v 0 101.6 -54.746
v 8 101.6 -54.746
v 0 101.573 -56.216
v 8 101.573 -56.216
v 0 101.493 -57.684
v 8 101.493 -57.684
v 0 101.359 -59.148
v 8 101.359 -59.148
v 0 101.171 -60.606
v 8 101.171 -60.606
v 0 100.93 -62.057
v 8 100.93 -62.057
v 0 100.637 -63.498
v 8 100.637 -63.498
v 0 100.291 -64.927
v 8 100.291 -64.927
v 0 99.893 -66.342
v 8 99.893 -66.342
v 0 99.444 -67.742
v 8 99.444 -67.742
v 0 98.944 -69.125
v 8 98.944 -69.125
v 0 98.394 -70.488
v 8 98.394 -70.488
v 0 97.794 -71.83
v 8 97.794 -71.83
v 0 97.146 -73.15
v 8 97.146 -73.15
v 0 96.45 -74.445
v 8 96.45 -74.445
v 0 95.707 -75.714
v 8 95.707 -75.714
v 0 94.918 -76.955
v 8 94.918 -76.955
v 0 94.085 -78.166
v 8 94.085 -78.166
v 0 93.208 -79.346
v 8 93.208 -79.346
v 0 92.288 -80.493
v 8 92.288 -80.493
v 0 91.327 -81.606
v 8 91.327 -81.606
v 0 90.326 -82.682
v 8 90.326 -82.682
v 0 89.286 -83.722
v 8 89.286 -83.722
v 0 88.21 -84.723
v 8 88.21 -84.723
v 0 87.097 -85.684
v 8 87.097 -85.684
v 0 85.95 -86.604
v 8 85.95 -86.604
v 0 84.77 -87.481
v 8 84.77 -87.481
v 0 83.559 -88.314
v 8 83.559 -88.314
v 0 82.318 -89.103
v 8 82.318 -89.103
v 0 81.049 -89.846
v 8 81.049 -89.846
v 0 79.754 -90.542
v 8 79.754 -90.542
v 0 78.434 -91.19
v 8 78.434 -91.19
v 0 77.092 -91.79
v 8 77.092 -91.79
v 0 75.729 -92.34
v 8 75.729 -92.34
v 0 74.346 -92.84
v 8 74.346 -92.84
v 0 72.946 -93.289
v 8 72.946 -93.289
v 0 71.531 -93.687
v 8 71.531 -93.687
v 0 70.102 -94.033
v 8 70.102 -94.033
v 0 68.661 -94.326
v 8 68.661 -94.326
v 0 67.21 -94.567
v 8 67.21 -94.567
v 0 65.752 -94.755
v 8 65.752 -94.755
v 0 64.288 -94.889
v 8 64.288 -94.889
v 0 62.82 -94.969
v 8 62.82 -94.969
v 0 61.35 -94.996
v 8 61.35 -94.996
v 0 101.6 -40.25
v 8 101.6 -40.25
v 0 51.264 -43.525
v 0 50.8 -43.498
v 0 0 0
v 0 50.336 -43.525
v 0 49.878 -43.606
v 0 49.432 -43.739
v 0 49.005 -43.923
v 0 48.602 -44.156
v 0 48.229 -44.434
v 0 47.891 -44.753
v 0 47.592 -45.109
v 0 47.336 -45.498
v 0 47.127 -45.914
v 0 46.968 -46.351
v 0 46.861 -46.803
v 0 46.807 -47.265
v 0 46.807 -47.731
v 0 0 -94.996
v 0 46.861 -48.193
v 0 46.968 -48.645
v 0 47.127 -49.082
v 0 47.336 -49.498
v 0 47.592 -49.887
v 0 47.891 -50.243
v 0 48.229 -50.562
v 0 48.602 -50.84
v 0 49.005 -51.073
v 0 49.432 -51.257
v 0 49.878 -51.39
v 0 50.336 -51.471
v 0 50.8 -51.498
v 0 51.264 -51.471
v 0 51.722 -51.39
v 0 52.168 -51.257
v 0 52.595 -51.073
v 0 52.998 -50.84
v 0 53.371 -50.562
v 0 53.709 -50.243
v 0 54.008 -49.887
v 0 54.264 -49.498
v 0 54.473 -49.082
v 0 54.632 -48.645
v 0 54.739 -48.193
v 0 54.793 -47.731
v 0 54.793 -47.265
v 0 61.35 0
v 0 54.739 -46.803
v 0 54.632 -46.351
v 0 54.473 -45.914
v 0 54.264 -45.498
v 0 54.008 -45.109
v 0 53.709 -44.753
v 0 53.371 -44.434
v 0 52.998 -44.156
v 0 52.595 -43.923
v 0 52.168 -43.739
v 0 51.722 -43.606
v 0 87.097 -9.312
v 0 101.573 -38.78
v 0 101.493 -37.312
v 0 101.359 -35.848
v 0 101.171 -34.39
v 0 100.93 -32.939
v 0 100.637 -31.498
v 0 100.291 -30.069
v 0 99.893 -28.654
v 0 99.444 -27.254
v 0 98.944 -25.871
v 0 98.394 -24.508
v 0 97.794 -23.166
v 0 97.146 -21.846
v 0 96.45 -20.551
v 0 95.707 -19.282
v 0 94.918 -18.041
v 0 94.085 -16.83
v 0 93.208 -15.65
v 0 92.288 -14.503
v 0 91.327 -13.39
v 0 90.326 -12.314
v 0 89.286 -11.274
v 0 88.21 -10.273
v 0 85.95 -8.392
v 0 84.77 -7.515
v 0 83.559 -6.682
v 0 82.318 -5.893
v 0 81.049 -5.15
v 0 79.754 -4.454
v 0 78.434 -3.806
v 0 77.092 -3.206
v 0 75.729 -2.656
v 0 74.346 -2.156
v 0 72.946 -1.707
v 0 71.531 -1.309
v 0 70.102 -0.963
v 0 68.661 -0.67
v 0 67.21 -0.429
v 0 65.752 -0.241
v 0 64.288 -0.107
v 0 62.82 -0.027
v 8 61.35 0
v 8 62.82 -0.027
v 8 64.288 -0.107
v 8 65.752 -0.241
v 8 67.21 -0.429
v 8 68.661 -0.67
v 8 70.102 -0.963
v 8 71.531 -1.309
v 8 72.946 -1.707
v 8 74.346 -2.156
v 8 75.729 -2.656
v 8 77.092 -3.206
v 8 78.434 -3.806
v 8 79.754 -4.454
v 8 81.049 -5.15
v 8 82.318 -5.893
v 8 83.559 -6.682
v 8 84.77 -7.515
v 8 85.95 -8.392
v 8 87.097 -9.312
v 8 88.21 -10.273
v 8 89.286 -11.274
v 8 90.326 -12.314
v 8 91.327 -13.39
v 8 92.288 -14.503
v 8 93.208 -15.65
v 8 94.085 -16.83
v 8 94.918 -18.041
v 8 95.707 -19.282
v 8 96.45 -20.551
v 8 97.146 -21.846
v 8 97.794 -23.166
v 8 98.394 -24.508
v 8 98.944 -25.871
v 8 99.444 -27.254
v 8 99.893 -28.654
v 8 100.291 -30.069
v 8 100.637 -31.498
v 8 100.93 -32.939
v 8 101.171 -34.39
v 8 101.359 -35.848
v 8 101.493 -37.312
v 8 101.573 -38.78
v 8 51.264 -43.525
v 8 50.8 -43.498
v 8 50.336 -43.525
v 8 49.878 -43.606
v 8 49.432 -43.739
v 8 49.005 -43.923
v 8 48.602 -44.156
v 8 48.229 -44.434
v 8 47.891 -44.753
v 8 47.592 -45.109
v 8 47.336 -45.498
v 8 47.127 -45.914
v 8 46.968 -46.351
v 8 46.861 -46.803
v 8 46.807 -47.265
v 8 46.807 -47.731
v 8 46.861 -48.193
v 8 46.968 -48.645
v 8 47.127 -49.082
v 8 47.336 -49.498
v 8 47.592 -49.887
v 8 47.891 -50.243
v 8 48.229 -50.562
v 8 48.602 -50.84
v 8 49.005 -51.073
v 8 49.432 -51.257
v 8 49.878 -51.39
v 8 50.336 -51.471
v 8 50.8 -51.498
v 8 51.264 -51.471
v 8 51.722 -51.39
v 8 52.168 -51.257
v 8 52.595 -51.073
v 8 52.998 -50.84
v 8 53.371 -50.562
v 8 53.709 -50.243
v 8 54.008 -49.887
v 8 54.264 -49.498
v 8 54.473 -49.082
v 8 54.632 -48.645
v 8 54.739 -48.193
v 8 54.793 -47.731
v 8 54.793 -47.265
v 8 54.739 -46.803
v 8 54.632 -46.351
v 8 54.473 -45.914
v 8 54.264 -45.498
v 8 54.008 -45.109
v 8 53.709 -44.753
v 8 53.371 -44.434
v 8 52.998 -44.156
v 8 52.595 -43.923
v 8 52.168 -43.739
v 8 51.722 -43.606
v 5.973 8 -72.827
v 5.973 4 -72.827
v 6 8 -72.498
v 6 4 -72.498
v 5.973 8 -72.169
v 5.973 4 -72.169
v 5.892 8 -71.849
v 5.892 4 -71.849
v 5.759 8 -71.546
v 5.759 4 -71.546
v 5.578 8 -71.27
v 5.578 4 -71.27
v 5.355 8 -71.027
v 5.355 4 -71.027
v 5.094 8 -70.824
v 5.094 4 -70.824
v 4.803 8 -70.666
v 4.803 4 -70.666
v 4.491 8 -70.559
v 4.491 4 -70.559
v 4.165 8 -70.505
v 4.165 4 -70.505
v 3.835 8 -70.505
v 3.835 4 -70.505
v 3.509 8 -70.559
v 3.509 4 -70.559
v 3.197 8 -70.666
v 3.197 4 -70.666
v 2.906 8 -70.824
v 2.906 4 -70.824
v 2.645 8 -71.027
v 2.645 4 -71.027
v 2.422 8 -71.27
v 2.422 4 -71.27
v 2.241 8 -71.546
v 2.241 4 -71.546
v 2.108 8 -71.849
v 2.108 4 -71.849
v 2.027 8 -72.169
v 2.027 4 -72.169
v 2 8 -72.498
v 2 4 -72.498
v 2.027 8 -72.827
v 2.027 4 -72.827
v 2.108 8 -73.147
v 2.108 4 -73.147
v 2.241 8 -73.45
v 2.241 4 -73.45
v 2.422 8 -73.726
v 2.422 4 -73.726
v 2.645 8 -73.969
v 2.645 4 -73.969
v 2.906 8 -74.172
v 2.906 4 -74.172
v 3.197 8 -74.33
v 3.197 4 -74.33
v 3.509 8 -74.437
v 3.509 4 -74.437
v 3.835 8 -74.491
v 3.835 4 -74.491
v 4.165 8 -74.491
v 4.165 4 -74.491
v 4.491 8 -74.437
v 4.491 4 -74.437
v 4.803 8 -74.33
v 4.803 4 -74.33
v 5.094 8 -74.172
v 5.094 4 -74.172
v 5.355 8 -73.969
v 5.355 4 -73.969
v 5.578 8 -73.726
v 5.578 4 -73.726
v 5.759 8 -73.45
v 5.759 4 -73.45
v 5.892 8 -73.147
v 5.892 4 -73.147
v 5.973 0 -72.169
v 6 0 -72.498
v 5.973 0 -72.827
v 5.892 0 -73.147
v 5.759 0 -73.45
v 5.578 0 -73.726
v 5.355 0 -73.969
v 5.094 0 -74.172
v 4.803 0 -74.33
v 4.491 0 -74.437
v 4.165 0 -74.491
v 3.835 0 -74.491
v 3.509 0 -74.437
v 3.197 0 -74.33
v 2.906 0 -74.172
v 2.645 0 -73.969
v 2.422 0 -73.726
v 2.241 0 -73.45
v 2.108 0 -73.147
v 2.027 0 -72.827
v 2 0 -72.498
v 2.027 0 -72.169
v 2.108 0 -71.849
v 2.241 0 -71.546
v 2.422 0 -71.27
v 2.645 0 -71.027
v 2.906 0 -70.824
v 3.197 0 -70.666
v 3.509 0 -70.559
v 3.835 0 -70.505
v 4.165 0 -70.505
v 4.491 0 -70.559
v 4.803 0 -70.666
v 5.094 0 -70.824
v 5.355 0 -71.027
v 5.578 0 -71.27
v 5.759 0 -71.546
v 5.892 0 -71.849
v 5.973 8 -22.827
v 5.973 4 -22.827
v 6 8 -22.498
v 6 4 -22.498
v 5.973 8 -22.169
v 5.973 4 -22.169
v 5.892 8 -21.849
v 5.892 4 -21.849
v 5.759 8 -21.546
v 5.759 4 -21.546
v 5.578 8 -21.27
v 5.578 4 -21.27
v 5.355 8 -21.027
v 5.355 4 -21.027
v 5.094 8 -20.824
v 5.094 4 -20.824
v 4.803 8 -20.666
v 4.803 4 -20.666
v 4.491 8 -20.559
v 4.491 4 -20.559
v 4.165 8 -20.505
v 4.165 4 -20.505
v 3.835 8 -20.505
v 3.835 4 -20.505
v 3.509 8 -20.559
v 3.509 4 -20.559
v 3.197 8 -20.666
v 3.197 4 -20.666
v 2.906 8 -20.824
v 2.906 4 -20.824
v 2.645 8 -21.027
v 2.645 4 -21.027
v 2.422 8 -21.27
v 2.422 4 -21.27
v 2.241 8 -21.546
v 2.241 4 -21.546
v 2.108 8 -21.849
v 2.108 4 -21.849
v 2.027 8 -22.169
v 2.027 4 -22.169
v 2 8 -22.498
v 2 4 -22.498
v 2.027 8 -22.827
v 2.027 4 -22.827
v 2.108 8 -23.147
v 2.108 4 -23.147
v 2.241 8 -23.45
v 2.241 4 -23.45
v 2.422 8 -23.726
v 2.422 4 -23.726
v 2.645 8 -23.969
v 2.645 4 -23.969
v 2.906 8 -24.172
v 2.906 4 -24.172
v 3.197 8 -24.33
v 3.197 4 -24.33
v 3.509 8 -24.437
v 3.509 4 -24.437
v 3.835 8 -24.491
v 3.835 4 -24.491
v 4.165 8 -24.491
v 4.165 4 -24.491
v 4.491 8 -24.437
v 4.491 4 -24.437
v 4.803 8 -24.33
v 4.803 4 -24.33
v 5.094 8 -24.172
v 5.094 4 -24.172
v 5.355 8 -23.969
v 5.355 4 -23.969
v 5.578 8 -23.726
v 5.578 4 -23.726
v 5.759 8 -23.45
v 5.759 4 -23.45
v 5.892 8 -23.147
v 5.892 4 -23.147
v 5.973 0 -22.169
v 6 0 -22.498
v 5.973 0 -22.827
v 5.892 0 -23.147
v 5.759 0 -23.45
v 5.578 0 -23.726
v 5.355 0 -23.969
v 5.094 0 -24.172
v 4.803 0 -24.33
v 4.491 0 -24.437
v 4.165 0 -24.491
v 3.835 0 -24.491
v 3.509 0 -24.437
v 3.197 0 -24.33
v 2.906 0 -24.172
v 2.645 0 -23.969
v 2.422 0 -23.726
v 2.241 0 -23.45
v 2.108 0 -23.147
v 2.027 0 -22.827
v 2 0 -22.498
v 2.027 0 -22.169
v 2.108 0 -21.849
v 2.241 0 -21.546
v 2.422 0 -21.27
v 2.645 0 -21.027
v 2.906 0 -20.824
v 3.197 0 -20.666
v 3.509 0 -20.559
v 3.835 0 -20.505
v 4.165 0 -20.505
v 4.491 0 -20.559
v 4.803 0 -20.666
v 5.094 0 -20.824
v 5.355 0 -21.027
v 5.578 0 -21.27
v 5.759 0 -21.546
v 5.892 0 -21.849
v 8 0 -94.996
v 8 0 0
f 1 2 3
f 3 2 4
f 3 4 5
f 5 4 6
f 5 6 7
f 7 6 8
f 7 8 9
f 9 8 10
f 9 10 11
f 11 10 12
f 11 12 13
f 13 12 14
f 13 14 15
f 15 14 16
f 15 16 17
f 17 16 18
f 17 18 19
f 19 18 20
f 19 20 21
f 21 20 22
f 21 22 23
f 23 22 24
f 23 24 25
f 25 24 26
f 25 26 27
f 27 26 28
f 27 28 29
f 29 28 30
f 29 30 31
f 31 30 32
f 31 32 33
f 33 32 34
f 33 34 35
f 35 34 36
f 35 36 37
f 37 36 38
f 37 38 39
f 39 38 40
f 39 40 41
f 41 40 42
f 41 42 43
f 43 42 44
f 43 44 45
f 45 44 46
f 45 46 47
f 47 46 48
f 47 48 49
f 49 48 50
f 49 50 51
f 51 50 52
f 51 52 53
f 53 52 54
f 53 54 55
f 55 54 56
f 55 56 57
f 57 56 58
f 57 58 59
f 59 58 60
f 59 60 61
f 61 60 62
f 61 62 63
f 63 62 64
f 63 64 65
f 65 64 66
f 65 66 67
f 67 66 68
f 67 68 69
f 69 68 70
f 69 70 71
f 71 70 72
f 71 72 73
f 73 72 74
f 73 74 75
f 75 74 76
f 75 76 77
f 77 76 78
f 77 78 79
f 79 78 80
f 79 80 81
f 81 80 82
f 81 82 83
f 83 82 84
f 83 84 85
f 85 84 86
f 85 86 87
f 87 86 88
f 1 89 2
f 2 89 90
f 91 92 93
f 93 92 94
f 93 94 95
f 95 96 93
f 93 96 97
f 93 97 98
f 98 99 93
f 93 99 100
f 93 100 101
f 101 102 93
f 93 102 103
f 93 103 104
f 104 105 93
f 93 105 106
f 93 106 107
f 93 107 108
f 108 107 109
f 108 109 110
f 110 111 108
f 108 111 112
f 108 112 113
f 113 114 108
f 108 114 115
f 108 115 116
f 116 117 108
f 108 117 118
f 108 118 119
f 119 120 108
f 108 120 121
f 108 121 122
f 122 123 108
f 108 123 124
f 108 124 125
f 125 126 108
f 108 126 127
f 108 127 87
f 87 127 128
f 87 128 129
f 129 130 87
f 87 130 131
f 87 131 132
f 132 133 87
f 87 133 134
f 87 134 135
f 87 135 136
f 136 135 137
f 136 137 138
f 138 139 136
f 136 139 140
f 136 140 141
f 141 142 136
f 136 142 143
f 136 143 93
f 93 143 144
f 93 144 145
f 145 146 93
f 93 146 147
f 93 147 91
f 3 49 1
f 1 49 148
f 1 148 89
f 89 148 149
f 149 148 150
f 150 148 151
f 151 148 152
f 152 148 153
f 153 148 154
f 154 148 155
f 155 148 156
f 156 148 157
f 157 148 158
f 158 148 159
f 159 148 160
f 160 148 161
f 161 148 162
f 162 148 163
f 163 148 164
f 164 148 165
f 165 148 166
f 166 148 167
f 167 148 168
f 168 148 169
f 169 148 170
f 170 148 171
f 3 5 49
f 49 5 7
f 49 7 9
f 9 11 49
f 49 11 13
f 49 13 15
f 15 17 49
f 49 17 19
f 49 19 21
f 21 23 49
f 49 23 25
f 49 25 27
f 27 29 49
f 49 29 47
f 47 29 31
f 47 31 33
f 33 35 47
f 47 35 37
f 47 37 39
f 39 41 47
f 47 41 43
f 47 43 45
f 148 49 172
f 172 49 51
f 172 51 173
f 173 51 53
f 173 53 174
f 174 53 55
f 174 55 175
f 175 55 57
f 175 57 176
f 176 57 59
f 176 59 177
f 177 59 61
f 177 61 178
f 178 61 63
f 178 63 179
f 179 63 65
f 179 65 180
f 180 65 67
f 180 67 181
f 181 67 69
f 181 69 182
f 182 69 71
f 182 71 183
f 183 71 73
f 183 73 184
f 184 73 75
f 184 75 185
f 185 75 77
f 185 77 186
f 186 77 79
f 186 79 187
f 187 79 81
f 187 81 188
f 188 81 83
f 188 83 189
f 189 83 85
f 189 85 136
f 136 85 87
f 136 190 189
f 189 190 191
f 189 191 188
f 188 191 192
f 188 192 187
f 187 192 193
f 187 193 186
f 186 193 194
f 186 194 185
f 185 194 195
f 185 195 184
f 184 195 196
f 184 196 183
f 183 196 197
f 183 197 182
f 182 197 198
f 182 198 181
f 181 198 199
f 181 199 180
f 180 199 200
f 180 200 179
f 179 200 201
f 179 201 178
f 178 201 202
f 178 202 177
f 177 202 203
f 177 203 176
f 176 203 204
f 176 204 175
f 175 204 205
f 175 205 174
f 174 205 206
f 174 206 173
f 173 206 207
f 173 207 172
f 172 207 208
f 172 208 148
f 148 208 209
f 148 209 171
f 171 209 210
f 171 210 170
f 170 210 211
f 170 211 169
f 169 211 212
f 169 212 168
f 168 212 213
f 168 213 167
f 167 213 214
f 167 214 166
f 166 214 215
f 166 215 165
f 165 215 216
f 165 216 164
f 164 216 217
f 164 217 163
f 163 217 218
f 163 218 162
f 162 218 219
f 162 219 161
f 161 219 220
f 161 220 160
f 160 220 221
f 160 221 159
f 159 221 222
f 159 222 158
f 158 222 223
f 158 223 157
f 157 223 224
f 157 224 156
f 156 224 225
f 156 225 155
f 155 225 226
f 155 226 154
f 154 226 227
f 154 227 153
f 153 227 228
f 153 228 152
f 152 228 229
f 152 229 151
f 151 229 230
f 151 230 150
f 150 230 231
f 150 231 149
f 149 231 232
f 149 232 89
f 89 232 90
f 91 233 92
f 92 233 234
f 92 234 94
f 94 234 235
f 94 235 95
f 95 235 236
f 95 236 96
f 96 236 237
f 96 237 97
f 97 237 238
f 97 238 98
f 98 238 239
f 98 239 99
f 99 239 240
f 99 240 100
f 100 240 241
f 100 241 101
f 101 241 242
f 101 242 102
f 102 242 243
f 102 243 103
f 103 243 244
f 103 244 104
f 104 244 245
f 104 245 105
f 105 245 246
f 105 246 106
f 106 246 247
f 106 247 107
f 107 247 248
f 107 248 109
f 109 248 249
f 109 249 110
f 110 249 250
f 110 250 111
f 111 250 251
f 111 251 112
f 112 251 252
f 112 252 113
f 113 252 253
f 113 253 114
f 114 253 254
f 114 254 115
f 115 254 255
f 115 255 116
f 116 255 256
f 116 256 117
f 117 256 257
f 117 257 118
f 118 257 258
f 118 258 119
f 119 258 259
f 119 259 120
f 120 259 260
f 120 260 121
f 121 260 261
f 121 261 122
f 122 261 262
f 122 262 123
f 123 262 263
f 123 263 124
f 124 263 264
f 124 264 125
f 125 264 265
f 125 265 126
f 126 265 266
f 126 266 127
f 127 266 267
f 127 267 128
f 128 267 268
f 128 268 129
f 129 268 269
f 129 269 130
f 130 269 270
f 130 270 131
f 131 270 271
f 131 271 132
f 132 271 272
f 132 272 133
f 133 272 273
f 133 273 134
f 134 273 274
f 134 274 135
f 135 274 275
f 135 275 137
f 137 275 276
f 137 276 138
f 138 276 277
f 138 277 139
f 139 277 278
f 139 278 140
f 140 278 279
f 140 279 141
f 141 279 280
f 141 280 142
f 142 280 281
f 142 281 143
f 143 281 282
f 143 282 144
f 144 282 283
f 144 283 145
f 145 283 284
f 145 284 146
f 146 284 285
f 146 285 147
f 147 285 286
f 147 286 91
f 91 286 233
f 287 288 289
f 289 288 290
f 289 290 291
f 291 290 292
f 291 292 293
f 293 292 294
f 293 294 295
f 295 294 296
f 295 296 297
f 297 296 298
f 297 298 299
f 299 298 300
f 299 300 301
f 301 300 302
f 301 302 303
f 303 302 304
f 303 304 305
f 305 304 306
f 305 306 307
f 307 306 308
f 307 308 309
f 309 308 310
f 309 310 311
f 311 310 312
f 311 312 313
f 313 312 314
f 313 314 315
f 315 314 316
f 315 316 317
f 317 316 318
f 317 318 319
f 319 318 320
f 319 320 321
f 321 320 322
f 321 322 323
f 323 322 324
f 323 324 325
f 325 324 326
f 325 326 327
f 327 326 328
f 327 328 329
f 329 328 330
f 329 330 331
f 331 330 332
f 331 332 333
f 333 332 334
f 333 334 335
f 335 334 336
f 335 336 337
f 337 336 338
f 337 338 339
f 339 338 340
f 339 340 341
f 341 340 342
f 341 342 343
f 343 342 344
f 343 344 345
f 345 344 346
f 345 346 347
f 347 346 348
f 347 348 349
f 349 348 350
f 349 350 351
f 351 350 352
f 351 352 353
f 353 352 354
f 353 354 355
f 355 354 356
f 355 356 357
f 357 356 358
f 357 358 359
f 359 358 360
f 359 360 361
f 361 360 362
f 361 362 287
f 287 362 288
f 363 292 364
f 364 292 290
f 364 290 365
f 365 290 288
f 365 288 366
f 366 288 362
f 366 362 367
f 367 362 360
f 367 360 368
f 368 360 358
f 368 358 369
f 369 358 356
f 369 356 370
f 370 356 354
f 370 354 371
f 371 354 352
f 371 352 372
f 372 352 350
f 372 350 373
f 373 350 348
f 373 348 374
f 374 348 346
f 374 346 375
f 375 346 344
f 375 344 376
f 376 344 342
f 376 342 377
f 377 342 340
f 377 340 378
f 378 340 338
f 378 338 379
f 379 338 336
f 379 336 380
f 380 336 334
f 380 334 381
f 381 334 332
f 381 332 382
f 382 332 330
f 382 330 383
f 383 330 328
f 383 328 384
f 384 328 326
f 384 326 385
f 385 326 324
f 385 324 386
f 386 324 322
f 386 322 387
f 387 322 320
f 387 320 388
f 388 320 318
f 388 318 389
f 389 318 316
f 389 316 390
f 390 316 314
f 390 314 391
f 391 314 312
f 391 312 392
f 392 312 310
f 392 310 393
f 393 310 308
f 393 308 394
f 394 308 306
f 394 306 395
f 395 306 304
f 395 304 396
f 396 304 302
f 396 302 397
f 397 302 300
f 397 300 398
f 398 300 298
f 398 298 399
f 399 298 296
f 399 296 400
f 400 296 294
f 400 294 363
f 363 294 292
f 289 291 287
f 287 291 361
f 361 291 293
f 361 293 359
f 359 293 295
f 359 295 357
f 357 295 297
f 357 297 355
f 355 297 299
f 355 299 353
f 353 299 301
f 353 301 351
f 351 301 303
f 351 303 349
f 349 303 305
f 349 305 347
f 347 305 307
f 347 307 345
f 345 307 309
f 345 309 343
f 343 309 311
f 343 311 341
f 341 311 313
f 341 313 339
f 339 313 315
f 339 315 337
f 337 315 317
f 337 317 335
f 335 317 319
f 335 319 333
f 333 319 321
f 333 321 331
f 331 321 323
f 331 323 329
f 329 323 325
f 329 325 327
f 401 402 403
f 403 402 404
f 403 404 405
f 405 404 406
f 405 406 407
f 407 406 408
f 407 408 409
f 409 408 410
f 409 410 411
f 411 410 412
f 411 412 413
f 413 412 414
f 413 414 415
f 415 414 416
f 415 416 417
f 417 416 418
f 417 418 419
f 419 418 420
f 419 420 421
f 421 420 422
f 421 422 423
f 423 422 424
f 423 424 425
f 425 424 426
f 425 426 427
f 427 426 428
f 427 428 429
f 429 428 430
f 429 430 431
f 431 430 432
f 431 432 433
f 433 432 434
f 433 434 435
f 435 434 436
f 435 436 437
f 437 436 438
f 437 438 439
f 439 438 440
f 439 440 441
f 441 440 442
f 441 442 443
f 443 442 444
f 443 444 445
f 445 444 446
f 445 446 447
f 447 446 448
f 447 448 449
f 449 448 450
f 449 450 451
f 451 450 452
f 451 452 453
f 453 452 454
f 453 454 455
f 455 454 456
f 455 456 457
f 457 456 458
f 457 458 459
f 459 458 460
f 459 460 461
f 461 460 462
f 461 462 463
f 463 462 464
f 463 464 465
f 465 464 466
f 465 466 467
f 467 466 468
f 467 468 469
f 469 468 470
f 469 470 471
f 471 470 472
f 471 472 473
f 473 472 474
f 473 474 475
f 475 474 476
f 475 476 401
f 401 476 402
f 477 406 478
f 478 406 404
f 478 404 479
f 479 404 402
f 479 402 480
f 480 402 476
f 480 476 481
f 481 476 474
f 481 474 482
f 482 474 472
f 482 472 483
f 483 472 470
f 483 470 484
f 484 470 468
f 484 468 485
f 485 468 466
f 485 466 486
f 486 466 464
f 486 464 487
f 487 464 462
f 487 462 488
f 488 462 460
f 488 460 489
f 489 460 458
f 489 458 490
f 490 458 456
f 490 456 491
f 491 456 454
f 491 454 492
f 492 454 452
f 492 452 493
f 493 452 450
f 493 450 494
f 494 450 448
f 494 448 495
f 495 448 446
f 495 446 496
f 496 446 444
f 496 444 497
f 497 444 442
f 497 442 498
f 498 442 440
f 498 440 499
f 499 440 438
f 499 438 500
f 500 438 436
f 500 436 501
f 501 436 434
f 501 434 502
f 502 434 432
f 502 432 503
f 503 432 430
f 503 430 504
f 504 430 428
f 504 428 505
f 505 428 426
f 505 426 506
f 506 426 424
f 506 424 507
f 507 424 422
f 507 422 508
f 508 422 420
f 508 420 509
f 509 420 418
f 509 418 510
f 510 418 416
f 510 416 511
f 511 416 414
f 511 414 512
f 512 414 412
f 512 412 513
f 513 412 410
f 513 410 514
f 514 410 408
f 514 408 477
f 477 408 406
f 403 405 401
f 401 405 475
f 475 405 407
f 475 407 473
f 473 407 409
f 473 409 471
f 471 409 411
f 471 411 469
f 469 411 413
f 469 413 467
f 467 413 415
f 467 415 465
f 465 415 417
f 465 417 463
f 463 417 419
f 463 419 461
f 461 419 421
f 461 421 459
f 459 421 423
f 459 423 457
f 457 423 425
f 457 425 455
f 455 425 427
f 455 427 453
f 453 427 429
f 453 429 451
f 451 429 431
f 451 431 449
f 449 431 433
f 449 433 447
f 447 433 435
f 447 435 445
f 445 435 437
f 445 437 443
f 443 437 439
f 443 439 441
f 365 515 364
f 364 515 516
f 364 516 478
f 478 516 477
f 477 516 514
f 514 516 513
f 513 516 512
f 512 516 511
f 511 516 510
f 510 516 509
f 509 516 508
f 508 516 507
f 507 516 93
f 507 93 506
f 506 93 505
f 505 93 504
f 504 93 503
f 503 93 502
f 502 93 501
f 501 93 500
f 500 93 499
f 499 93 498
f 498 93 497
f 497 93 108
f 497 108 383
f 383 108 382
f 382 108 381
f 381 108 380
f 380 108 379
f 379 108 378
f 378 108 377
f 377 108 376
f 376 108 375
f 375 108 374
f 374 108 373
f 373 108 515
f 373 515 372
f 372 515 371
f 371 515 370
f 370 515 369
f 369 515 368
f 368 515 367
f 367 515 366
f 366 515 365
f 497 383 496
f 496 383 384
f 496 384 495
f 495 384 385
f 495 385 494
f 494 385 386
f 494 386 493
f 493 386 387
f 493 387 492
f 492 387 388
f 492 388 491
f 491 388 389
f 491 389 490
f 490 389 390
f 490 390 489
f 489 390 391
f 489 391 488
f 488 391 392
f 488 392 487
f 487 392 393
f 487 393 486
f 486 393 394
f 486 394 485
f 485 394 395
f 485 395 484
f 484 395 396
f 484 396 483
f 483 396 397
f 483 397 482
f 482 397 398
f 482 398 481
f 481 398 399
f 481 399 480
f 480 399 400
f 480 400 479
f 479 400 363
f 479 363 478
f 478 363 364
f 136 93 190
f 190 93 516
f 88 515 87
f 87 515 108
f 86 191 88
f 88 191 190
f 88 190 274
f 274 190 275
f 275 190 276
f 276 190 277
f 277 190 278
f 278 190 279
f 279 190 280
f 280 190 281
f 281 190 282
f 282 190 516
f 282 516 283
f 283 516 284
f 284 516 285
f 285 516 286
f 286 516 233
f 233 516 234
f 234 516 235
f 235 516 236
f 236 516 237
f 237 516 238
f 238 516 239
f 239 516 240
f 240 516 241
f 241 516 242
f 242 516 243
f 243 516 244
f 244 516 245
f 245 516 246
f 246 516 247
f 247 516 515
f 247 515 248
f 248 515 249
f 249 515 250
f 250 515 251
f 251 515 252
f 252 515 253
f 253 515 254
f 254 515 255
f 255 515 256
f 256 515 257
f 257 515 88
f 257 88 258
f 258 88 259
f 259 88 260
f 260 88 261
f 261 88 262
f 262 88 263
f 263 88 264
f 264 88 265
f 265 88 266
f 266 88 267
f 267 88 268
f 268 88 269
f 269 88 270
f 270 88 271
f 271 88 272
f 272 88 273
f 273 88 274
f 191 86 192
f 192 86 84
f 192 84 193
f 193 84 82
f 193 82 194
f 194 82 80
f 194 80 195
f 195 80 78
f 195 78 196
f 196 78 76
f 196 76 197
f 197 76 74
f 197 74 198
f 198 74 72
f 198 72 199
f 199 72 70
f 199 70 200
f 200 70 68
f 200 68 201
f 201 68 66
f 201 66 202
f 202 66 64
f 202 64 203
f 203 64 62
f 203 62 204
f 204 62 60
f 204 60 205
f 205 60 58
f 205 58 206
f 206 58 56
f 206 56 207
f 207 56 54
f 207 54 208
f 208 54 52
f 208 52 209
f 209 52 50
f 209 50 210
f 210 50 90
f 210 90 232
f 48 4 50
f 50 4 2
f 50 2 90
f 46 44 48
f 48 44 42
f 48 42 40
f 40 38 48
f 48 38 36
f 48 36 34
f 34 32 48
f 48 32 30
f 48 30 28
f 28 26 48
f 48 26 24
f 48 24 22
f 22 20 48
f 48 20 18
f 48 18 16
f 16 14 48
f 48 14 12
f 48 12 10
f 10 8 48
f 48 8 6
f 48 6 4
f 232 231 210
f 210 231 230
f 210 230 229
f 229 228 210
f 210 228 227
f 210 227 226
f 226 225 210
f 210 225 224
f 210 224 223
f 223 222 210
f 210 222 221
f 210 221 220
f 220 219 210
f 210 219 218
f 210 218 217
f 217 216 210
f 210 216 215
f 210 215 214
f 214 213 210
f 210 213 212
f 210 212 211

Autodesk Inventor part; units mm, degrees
ref_plane "YZ Plane" through (0, 0, 0) normal (1, 0, 0) x (0, 1, 0)
ref_plane "XZ Plane" through (0, 0, 0) normal (0, 1, 0) x (-1, 0, 0)
ref_plane "XY Plane" through (0, 0, 0) normal (0, 0, 1) x (1, 0, 0)
sketch "Sketch1" plane through (0, 0, 0) normal (1, 0, 0) x (0, 1, 0)
  line L0 (0, 0) -> (101.6, 0)
  line L1 (101.6, 0) -> (101.6, -94.996)
  line L2 (101.6, -94.996) -> (0, -94.996)
  line L3 (0, -94.996) -> (0, 0)
  dimension "d0" = 101.6
  dimension "d1" = 94.996
extrude "Extrusion1" add sketch "Sketch1" along normal blind 8
sketch "Sketch2" plane through (0, 0, -94.996) normal (0, -1, 0) x (1, 0, 0)
  line L0 (0, 0) -> (0, 94.996) projected
  line L1 (8, 0) -> (8, 94.996) projected
  circle A0 centre (4, 72.498) radius 2
  circle A1 centre (4, 22.498) radius 2
  dimension "d6" = 4
extrude "Extrusion2" cut sketch "Sketch2" against normal blind 8
sketch "Sketch3" plane through (8, 0, 0) normal (1, 0, 0) x (0, 0, -1)
  line L0 (0, 101.6) -> (0, 0) projected
  line L1 (94.996, 101.6) -> (0, 101.6) projected
  circle A0 centre (47.498, 50.8) radius 4
  dimension "d9" = 8
extrude "Extrusion3" cut sketch "Sketch3" against normal through all
fillet "Fillet1" radius 40.25 2 edges at (4, 101.6, 0) (4, 101.6, -94.996)
properties part number "Base_Attachment"
